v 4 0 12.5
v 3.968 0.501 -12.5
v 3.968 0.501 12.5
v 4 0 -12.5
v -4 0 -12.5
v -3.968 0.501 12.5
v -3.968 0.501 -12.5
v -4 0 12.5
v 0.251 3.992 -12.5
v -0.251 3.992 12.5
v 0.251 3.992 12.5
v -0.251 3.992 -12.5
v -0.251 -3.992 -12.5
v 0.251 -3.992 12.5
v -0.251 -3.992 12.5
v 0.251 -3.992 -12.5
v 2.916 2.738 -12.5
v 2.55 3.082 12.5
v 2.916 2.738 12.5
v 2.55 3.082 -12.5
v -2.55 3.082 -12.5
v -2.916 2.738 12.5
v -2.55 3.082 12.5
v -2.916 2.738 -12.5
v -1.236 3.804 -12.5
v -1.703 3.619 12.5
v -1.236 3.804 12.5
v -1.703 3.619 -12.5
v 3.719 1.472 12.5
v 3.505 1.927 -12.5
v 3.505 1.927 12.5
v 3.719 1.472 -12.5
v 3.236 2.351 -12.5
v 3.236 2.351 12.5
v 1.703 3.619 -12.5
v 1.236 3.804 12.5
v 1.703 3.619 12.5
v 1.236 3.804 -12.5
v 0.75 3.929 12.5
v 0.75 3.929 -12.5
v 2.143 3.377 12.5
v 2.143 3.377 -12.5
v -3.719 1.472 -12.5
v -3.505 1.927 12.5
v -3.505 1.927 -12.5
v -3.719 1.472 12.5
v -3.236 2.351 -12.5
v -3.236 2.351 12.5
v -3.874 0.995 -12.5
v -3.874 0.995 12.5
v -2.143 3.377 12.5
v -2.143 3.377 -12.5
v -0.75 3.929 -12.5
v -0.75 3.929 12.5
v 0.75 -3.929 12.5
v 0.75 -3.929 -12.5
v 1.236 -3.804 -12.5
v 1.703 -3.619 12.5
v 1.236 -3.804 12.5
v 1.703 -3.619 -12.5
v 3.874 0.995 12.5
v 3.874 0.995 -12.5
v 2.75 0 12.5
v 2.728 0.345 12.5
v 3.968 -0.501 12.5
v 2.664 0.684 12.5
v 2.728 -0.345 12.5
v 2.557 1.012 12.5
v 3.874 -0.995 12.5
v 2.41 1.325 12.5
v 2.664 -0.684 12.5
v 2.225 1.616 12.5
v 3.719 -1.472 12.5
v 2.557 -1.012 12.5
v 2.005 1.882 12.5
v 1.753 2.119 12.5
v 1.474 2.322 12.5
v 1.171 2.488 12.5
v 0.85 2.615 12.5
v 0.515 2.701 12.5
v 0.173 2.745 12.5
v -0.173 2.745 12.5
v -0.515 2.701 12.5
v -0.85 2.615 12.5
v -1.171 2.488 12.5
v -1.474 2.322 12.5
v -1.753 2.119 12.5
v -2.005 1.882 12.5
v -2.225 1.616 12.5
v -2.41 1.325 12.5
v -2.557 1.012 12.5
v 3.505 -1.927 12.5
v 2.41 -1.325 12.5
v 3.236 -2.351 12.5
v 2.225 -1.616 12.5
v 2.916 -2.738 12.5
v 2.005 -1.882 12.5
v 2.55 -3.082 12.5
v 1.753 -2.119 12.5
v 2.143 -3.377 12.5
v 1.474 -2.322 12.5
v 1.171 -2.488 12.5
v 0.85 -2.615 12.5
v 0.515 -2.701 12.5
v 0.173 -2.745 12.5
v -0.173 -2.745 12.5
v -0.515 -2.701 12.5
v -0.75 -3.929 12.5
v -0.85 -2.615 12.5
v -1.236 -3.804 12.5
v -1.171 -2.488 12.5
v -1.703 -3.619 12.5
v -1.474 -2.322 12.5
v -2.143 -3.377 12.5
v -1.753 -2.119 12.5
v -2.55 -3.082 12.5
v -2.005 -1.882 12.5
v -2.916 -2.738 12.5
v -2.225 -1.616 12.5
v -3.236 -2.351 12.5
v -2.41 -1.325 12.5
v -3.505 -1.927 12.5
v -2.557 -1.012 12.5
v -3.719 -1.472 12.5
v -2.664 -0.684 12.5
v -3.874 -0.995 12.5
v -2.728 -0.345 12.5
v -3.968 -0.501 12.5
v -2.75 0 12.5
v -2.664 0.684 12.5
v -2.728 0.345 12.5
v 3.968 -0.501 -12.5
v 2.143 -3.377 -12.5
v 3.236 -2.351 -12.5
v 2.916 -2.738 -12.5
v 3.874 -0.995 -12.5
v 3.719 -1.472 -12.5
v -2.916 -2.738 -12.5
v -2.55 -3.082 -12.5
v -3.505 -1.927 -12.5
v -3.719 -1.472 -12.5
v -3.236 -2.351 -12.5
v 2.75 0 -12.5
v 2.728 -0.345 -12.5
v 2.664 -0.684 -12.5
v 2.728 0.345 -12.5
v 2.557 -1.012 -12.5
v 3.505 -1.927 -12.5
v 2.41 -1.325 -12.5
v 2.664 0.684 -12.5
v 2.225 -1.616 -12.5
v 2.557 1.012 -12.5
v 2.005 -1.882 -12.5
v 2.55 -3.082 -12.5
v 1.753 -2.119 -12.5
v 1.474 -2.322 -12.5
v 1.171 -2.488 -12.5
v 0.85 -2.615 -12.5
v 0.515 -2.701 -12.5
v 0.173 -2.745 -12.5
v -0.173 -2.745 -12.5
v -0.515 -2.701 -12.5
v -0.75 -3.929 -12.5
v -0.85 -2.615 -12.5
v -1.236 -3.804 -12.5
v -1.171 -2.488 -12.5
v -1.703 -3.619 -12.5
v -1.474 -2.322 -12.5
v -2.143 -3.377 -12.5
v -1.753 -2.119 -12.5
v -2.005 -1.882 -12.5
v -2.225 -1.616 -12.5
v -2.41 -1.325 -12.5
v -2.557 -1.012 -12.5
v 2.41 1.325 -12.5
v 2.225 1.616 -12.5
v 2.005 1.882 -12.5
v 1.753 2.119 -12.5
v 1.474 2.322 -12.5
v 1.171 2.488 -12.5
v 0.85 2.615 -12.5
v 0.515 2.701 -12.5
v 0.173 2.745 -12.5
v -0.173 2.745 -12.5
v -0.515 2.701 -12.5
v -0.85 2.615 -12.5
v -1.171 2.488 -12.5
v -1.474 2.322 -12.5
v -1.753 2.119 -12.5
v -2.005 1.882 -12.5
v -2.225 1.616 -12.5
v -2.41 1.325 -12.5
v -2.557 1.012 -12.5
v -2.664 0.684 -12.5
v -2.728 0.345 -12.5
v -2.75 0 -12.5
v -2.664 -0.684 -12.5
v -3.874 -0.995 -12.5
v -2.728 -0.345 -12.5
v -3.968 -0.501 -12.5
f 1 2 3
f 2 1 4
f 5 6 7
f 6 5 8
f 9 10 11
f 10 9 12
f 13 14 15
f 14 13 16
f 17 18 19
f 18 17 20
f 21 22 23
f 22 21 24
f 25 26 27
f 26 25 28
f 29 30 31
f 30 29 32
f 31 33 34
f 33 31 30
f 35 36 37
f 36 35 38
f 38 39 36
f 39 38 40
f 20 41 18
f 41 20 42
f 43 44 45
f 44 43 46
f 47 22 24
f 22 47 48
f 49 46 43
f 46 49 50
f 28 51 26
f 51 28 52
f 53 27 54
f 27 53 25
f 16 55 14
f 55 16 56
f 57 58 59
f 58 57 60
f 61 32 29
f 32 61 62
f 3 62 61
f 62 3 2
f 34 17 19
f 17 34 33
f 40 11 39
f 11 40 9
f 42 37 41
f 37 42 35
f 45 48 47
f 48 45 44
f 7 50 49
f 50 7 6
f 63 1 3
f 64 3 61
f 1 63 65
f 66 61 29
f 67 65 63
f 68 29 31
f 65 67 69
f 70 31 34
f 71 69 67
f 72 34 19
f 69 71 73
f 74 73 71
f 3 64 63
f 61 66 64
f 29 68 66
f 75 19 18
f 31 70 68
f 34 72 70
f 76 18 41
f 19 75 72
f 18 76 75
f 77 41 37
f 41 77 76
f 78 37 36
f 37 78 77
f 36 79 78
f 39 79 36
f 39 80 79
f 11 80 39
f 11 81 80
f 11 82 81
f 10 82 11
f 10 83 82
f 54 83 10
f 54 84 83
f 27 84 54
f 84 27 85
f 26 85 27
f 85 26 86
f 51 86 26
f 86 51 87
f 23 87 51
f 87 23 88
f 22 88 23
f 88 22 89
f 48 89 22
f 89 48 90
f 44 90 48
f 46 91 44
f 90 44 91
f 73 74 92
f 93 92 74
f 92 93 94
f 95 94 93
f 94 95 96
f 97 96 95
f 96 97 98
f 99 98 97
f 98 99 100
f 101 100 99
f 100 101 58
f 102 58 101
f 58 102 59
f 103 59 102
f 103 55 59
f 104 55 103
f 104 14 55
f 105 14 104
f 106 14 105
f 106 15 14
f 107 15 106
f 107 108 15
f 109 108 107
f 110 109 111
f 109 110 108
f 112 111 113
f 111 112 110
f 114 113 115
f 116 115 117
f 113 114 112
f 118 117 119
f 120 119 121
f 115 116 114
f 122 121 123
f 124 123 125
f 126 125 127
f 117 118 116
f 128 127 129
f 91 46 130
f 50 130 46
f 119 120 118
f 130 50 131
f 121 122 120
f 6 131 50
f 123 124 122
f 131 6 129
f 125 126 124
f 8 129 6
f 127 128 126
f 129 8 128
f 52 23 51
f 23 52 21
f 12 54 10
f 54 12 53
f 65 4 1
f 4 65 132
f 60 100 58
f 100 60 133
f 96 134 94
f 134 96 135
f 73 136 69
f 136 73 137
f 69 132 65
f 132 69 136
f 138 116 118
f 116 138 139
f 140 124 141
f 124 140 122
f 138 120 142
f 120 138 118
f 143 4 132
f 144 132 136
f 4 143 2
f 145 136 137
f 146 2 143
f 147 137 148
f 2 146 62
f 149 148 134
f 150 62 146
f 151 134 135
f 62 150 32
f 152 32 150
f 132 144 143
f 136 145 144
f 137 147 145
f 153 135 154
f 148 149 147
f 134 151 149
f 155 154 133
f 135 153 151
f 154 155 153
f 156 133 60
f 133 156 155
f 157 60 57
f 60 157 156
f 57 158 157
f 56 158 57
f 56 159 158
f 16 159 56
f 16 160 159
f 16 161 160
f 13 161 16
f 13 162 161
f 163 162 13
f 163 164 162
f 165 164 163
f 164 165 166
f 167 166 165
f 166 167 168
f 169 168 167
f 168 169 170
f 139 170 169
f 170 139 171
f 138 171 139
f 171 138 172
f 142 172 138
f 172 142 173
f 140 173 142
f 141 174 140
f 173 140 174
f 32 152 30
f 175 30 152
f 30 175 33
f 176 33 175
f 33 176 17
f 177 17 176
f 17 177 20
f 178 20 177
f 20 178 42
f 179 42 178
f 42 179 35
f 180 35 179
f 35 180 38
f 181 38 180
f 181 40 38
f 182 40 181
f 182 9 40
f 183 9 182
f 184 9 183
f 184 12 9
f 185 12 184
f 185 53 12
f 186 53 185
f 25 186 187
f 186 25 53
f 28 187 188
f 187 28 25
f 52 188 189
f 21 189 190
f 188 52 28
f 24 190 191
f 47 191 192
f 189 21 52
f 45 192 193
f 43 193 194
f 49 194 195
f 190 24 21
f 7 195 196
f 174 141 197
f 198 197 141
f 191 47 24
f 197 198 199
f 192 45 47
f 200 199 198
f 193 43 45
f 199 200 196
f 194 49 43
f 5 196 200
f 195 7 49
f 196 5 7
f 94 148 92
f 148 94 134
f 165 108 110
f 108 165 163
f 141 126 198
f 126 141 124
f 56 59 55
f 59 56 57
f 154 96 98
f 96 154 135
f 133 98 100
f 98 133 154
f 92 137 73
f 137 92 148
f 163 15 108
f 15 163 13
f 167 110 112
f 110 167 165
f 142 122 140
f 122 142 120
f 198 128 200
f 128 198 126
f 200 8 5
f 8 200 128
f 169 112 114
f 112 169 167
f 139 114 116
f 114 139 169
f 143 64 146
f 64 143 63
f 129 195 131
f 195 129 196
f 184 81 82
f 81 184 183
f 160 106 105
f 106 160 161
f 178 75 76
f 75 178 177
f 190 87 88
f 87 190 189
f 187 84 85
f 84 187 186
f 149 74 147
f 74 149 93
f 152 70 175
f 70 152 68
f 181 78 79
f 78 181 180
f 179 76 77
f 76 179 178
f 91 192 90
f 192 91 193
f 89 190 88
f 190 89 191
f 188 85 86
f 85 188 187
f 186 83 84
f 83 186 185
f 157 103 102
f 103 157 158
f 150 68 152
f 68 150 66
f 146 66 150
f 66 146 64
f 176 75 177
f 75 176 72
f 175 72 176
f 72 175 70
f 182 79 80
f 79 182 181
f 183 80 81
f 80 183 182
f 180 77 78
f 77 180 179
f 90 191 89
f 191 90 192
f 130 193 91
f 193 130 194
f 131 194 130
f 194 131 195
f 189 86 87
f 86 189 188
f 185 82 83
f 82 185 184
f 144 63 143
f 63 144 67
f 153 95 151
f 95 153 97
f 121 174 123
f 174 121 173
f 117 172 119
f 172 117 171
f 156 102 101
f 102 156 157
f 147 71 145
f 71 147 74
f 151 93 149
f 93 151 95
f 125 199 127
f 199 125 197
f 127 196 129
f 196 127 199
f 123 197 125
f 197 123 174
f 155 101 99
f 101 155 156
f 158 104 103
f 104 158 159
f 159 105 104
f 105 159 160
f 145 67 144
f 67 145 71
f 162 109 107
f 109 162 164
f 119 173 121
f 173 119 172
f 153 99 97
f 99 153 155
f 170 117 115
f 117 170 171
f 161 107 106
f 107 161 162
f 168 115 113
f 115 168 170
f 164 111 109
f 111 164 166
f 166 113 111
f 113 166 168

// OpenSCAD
$fn = 50;


difference() {
	union() {
		translate(v = [0, 0, -12.5000000000]) {
			cylinder(h = 25, r = 4.0000000000);
		}
	}
	union() {
		translate(v = [0, 0, -100.0000000000]) {
			cylinder(h = 200, r = 2.7500000000);
		}
	}
}
